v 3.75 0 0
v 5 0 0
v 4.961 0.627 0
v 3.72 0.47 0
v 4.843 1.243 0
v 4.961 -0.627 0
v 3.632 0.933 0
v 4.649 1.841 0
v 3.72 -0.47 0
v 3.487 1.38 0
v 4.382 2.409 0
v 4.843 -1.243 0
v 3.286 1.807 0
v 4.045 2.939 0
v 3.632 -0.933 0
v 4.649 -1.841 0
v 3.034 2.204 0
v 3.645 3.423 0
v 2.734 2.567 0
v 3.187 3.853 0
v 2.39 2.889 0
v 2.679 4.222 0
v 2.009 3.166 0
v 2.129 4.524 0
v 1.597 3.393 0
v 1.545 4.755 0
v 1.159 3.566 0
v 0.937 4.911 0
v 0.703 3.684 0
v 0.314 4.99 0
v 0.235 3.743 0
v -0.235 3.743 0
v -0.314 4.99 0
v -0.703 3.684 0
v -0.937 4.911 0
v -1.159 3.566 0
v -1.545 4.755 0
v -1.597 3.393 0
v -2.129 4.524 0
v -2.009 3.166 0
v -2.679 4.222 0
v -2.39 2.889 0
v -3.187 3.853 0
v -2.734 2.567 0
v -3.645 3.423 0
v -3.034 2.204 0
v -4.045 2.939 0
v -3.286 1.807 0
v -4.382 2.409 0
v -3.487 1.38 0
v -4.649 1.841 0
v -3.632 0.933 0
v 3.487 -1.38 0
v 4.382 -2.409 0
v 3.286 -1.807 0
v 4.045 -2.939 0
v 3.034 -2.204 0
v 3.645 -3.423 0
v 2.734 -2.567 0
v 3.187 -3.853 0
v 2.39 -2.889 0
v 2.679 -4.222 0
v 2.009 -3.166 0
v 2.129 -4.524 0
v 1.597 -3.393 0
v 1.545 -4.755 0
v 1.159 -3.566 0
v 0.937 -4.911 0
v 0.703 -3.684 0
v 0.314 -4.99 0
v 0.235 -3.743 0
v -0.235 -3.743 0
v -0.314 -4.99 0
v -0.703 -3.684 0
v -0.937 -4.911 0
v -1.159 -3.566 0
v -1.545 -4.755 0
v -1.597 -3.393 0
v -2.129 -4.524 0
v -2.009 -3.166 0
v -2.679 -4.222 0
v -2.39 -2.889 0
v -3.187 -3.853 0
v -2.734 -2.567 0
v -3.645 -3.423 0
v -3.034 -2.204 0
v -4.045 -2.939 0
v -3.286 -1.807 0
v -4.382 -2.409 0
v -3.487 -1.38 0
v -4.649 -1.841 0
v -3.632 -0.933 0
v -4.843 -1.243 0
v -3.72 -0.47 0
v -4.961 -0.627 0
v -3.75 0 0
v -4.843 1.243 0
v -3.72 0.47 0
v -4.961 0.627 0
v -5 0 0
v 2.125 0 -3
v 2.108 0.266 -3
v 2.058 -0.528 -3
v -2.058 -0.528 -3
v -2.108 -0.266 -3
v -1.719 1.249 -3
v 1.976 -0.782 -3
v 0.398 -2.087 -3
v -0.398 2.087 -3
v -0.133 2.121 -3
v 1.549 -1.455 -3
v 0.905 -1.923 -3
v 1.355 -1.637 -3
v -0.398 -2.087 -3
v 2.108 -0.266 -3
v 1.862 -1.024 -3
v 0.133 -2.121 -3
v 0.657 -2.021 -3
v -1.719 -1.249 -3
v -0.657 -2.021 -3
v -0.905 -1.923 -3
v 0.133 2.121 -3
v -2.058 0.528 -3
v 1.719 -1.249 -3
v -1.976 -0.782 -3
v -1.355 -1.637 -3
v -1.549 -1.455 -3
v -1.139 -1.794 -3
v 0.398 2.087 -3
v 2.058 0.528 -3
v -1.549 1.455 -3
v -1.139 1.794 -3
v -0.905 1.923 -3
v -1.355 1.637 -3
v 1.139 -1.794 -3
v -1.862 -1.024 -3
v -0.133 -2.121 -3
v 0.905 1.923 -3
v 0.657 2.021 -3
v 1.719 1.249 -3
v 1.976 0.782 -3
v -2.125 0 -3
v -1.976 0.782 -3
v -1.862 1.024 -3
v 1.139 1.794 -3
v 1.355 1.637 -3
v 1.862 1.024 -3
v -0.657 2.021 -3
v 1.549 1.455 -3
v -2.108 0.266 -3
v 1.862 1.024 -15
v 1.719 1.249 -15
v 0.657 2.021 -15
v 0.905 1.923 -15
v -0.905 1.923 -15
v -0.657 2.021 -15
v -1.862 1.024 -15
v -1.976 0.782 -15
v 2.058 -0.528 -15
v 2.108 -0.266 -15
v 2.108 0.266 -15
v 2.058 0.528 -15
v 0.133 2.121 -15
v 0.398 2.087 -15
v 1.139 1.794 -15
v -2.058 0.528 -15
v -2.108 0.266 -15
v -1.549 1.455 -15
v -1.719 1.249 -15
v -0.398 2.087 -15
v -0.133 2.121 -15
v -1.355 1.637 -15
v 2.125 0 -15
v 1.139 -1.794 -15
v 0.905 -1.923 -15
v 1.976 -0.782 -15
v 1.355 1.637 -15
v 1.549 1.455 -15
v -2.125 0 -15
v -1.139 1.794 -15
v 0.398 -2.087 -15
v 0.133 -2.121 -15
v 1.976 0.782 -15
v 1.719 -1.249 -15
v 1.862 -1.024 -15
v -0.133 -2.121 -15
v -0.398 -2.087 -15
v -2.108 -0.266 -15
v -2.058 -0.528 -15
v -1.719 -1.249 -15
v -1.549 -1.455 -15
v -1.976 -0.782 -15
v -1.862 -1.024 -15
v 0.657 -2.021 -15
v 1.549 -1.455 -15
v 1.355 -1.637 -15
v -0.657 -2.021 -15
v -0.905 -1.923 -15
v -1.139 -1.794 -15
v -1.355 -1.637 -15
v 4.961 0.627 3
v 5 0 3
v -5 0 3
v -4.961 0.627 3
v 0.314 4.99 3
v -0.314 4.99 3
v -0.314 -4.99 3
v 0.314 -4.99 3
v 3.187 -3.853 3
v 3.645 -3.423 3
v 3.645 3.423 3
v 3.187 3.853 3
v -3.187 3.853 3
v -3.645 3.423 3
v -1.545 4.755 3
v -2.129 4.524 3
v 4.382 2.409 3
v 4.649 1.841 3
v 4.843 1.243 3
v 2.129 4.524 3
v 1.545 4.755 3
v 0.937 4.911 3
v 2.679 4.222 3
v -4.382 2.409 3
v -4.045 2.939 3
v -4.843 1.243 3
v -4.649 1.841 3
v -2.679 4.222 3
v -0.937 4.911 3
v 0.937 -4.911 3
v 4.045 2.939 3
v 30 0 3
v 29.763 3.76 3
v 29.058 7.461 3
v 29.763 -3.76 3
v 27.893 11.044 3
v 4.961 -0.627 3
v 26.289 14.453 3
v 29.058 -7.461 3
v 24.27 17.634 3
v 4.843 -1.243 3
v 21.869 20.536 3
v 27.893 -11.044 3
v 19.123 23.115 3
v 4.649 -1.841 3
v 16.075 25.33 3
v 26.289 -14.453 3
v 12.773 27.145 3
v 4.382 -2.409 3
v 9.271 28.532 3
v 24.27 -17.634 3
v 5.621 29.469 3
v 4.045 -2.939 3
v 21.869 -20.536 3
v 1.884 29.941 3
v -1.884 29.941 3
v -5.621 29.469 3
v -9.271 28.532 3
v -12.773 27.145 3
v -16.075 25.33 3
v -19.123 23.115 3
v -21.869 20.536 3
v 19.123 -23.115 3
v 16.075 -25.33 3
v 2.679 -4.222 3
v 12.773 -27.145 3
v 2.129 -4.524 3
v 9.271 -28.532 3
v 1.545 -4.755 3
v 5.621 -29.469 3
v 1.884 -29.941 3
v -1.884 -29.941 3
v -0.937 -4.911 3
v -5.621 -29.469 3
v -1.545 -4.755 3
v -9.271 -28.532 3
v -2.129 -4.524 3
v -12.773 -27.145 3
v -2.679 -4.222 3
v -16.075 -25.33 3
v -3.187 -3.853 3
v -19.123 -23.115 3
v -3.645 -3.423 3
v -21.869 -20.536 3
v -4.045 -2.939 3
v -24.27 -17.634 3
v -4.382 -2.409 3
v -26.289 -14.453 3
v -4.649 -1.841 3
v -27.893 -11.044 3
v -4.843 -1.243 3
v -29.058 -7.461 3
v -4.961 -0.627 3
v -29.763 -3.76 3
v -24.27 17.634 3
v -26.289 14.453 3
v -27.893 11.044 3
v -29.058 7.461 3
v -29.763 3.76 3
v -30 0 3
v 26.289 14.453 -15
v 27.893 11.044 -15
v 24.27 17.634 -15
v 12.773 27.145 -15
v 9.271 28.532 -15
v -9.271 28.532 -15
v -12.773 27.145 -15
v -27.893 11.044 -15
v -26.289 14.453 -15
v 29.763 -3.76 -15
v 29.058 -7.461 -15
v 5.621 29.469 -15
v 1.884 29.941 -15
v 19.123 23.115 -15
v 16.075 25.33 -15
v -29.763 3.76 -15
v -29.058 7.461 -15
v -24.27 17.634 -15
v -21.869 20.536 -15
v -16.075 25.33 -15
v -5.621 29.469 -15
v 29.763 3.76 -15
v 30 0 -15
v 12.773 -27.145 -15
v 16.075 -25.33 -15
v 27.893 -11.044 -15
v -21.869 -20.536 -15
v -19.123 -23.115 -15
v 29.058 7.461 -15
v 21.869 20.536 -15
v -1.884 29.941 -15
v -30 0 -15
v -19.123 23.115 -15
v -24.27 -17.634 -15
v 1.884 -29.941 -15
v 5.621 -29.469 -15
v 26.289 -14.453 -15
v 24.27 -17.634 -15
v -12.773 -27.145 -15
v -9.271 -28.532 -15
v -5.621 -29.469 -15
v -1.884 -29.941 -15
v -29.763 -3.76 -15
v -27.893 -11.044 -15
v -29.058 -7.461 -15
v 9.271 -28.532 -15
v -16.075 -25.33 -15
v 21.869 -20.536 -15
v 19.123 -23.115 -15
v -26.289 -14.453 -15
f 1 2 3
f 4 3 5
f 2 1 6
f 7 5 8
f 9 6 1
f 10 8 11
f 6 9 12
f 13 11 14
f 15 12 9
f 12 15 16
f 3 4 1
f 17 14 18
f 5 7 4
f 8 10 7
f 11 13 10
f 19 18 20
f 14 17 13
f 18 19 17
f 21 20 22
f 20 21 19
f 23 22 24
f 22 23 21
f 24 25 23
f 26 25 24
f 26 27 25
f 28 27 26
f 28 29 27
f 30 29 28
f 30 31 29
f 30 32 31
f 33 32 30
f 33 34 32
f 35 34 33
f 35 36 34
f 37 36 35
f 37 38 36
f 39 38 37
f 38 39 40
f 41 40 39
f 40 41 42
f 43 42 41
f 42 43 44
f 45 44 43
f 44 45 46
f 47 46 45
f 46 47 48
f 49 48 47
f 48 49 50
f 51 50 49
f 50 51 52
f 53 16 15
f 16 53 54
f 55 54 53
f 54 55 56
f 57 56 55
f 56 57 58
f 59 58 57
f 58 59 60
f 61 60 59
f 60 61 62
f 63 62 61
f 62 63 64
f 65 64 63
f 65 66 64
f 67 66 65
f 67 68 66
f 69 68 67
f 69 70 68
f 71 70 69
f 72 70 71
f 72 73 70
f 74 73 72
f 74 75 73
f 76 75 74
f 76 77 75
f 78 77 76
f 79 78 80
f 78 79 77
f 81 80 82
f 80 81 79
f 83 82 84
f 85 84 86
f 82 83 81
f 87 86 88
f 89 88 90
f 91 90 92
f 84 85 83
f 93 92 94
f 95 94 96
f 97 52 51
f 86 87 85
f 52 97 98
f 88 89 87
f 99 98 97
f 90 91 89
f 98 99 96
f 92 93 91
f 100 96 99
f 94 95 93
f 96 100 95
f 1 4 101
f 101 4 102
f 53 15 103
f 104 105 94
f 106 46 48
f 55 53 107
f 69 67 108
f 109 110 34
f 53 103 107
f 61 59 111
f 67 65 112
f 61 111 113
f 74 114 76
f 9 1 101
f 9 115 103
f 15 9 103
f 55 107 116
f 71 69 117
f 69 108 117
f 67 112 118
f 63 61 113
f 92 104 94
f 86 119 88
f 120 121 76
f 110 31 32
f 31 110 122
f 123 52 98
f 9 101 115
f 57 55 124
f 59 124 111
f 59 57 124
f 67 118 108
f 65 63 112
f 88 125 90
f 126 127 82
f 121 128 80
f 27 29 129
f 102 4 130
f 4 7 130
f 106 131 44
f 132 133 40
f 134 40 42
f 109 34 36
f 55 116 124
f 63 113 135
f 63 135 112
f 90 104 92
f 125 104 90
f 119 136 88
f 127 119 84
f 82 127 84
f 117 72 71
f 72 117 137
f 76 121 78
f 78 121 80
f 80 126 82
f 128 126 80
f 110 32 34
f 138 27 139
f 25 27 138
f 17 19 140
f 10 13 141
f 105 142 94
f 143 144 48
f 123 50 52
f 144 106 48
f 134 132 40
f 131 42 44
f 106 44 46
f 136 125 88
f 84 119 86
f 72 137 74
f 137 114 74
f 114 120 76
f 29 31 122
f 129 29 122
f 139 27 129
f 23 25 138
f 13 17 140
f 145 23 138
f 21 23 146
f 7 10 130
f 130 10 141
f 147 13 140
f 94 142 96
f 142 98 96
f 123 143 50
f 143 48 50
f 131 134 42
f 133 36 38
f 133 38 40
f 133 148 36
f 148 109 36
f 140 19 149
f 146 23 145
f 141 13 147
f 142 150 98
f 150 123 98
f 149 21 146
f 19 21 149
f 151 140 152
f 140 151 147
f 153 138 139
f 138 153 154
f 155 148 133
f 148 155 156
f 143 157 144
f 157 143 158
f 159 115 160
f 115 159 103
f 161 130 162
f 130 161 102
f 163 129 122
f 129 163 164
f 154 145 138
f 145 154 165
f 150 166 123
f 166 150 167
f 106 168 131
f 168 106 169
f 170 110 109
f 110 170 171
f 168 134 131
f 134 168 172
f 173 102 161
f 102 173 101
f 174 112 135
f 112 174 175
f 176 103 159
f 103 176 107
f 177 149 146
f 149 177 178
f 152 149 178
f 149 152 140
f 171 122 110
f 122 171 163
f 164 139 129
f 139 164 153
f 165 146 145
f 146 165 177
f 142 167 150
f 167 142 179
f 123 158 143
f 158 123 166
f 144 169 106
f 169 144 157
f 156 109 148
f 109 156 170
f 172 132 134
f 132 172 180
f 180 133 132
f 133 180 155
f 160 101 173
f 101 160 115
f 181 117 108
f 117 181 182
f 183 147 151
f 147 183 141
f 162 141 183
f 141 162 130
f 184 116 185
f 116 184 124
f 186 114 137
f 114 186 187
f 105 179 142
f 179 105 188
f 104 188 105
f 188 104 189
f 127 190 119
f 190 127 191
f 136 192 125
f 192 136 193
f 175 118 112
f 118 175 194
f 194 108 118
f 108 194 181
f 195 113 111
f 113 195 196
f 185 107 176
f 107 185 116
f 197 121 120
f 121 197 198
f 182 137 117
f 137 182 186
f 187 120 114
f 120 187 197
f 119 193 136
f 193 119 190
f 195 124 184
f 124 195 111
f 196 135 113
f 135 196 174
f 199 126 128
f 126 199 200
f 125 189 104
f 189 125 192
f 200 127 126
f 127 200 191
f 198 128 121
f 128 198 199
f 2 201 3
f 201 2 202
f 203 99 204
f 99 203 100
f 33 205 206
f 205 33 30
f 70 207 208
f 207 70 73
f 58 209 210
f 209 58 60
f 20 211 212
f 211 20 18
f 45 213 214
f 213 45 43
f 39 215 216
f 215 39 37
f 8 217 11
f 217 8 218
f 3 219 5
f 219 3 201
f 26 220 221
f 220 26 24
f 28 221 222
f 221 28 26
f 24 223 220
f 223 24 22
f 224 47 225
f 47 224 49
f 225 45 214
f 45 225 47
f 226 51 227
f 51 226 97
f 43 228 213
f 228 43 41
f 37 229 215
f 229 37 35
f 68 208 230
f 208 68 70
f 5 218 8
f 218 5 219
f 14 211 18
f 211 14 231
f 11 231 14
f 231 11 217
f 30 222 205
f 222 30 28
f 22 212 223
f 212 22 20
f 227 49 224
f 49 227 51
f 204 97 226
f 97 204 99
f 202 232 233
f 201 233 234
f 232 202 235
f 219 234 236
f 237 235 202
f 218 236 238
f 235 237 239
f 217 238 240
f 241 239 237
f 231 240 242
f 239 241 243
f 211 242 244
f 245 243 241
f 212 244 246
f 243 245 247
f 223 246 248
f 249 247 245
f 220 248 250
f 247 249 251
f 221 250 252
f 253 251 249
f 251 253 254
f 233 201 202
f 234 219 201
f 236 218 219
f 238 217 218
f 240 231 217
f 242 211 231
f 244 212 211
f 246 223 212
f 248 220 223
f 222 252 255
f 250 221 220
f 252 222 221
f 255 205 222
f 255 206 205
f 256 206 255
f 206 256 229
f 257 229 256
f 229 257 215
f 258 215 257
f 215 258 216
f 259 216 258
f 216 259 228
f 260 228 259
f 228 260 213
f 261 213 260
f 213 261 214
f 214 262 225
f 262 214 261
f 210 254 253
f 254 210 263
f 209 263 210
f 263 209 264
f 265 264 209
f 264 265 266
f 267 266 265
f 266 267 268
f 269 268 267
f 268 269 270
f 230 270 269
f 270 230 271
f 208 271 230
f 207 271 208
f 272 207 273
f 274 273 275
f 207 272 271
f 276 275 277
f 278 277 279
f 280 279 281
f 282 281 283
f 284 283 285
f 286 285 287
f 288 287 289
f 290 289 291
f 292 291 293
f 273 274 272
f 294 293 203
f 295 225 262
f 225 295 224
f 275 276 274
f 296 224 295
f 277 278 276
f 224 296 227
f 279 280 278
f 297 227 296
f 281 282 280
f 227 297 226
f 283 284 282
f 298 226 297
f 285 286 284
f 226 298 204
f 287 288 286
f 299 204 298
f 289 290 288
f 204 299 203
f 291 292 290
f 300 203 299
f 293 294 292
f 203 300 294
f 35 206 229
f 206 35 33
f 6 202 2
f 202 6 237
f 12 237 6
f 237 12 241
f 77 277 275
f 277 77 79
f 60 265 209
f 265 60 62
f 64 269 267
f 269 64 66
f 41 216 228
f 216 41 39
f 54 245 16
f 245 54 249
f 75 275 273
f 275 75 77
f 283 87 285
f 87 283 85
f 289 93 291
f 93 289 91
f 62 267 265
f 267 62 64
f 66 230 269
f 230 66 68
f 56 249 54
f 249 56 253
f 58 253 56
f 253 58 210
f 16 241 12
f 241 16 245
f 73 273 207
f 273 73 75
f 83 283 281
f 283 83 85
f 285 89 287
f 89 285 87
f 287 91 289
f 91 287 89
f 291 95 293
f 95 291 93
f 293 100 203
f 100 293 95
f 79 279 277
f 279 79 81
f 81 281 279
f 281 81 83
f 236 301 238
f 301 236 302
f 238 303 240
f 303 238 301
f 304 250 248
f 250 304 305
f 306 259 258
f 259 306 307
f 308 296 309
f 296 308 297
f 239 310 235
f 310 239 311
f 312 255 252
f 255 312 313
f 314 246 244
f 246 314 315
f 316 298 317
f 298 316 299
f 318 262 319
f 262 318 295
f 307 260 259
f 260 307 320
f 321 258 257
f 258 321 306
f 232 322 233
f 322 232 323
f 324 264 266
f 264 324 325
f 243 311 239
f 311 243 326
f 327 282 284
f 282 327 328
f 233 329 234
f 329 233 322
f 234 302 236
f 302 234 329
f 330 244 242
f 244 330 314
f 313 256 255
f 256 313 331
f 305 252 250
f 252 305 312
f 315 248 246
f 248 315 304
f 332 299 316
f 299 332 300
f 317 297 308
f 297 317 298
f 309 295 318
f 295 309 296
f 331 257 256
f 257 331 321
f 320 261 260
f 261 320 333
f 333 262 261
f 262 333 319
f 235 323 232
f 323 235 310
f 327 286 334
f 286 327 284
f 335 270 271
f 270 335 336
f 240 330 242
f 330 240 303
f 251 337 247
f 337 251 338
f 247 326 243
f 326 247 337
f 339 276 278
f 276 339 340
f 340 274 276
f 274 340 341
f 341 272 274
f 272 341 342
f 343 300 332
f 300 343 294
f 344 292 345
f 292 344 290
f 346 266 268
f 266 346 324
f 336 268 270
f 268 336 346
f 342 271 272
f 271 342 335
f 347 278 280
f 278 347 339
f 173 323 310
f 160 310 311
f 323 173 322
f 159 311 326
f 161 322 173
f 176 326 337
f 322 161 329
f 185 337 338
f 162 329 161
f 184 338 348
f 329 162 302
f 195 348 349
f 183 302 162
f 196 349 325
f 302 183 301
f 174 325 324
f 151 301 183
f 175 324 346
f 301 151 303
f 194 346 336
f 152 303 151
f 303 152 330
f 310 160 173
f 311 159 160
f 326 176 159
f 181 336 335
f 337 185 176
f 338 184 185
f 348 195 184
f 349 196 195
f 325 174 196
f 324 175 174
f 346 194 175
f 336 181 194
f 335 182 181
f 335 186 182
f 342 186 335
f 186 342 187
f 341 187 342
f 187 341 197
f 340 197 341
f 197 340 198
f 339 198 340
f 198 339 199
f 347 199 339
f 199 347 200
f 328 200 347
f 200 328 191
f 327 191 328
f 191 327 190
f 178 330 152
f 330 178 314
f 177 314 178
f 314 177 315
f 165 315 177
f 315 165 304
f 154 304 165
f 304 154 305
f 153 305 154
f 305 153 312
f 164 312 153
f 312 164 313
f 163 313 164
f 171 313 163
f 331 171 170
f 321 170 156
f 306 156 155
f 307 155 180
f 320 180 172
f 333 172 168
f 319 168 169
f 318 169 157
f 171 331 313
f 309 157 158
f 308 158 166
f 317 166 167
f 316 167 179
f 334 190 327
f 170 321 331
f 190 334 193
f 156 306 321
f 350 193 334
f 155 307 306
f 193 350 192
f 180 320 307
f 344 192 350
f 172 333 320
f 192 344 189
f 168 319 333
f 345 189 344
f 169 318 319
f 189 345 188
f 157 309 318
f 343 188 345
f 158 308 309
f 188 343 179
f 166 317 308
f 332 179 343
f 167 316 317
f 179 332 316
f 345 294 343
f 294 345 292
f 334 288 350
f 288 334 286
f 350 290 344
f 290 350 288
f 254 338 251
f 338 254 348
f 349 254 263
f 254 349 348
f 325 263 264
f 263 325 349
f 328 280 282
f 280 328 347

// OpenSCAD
$fn = 50;


difference() {
	union() {
		translate(v = [0, 0, -15.0000000000]) {
			cylinder(h = 18, r = 30.0000000000);
		}
	}
	union() {
		translate(v = [0, 0, 0]) {
			rotate(a = [0, 0, 0]) {
				difference() {
					union() {
						translate(v = [0, 0, -18.0000000000]) {
							cylinder(h = 18, r = 2.0000000000);
						}
						translate(v = [0, 0, -3]) {
							cylinder(h = 3, r1 = 2.1250000000, r2 = 3.7500000000);
						}
						translate(v = [0, 0, -18.0000000000]) {
							cylinder(h = 18, r = 2.1250000000);
						}
						translate(v = [0, 0, -18.0000000000]) {
							cylinder(h = 18, r = 2.0000000000);
						}
					}
					union();
				}
			}
		}
		#cylinder(h = 3, r = 5.0000000000);
	}
}
